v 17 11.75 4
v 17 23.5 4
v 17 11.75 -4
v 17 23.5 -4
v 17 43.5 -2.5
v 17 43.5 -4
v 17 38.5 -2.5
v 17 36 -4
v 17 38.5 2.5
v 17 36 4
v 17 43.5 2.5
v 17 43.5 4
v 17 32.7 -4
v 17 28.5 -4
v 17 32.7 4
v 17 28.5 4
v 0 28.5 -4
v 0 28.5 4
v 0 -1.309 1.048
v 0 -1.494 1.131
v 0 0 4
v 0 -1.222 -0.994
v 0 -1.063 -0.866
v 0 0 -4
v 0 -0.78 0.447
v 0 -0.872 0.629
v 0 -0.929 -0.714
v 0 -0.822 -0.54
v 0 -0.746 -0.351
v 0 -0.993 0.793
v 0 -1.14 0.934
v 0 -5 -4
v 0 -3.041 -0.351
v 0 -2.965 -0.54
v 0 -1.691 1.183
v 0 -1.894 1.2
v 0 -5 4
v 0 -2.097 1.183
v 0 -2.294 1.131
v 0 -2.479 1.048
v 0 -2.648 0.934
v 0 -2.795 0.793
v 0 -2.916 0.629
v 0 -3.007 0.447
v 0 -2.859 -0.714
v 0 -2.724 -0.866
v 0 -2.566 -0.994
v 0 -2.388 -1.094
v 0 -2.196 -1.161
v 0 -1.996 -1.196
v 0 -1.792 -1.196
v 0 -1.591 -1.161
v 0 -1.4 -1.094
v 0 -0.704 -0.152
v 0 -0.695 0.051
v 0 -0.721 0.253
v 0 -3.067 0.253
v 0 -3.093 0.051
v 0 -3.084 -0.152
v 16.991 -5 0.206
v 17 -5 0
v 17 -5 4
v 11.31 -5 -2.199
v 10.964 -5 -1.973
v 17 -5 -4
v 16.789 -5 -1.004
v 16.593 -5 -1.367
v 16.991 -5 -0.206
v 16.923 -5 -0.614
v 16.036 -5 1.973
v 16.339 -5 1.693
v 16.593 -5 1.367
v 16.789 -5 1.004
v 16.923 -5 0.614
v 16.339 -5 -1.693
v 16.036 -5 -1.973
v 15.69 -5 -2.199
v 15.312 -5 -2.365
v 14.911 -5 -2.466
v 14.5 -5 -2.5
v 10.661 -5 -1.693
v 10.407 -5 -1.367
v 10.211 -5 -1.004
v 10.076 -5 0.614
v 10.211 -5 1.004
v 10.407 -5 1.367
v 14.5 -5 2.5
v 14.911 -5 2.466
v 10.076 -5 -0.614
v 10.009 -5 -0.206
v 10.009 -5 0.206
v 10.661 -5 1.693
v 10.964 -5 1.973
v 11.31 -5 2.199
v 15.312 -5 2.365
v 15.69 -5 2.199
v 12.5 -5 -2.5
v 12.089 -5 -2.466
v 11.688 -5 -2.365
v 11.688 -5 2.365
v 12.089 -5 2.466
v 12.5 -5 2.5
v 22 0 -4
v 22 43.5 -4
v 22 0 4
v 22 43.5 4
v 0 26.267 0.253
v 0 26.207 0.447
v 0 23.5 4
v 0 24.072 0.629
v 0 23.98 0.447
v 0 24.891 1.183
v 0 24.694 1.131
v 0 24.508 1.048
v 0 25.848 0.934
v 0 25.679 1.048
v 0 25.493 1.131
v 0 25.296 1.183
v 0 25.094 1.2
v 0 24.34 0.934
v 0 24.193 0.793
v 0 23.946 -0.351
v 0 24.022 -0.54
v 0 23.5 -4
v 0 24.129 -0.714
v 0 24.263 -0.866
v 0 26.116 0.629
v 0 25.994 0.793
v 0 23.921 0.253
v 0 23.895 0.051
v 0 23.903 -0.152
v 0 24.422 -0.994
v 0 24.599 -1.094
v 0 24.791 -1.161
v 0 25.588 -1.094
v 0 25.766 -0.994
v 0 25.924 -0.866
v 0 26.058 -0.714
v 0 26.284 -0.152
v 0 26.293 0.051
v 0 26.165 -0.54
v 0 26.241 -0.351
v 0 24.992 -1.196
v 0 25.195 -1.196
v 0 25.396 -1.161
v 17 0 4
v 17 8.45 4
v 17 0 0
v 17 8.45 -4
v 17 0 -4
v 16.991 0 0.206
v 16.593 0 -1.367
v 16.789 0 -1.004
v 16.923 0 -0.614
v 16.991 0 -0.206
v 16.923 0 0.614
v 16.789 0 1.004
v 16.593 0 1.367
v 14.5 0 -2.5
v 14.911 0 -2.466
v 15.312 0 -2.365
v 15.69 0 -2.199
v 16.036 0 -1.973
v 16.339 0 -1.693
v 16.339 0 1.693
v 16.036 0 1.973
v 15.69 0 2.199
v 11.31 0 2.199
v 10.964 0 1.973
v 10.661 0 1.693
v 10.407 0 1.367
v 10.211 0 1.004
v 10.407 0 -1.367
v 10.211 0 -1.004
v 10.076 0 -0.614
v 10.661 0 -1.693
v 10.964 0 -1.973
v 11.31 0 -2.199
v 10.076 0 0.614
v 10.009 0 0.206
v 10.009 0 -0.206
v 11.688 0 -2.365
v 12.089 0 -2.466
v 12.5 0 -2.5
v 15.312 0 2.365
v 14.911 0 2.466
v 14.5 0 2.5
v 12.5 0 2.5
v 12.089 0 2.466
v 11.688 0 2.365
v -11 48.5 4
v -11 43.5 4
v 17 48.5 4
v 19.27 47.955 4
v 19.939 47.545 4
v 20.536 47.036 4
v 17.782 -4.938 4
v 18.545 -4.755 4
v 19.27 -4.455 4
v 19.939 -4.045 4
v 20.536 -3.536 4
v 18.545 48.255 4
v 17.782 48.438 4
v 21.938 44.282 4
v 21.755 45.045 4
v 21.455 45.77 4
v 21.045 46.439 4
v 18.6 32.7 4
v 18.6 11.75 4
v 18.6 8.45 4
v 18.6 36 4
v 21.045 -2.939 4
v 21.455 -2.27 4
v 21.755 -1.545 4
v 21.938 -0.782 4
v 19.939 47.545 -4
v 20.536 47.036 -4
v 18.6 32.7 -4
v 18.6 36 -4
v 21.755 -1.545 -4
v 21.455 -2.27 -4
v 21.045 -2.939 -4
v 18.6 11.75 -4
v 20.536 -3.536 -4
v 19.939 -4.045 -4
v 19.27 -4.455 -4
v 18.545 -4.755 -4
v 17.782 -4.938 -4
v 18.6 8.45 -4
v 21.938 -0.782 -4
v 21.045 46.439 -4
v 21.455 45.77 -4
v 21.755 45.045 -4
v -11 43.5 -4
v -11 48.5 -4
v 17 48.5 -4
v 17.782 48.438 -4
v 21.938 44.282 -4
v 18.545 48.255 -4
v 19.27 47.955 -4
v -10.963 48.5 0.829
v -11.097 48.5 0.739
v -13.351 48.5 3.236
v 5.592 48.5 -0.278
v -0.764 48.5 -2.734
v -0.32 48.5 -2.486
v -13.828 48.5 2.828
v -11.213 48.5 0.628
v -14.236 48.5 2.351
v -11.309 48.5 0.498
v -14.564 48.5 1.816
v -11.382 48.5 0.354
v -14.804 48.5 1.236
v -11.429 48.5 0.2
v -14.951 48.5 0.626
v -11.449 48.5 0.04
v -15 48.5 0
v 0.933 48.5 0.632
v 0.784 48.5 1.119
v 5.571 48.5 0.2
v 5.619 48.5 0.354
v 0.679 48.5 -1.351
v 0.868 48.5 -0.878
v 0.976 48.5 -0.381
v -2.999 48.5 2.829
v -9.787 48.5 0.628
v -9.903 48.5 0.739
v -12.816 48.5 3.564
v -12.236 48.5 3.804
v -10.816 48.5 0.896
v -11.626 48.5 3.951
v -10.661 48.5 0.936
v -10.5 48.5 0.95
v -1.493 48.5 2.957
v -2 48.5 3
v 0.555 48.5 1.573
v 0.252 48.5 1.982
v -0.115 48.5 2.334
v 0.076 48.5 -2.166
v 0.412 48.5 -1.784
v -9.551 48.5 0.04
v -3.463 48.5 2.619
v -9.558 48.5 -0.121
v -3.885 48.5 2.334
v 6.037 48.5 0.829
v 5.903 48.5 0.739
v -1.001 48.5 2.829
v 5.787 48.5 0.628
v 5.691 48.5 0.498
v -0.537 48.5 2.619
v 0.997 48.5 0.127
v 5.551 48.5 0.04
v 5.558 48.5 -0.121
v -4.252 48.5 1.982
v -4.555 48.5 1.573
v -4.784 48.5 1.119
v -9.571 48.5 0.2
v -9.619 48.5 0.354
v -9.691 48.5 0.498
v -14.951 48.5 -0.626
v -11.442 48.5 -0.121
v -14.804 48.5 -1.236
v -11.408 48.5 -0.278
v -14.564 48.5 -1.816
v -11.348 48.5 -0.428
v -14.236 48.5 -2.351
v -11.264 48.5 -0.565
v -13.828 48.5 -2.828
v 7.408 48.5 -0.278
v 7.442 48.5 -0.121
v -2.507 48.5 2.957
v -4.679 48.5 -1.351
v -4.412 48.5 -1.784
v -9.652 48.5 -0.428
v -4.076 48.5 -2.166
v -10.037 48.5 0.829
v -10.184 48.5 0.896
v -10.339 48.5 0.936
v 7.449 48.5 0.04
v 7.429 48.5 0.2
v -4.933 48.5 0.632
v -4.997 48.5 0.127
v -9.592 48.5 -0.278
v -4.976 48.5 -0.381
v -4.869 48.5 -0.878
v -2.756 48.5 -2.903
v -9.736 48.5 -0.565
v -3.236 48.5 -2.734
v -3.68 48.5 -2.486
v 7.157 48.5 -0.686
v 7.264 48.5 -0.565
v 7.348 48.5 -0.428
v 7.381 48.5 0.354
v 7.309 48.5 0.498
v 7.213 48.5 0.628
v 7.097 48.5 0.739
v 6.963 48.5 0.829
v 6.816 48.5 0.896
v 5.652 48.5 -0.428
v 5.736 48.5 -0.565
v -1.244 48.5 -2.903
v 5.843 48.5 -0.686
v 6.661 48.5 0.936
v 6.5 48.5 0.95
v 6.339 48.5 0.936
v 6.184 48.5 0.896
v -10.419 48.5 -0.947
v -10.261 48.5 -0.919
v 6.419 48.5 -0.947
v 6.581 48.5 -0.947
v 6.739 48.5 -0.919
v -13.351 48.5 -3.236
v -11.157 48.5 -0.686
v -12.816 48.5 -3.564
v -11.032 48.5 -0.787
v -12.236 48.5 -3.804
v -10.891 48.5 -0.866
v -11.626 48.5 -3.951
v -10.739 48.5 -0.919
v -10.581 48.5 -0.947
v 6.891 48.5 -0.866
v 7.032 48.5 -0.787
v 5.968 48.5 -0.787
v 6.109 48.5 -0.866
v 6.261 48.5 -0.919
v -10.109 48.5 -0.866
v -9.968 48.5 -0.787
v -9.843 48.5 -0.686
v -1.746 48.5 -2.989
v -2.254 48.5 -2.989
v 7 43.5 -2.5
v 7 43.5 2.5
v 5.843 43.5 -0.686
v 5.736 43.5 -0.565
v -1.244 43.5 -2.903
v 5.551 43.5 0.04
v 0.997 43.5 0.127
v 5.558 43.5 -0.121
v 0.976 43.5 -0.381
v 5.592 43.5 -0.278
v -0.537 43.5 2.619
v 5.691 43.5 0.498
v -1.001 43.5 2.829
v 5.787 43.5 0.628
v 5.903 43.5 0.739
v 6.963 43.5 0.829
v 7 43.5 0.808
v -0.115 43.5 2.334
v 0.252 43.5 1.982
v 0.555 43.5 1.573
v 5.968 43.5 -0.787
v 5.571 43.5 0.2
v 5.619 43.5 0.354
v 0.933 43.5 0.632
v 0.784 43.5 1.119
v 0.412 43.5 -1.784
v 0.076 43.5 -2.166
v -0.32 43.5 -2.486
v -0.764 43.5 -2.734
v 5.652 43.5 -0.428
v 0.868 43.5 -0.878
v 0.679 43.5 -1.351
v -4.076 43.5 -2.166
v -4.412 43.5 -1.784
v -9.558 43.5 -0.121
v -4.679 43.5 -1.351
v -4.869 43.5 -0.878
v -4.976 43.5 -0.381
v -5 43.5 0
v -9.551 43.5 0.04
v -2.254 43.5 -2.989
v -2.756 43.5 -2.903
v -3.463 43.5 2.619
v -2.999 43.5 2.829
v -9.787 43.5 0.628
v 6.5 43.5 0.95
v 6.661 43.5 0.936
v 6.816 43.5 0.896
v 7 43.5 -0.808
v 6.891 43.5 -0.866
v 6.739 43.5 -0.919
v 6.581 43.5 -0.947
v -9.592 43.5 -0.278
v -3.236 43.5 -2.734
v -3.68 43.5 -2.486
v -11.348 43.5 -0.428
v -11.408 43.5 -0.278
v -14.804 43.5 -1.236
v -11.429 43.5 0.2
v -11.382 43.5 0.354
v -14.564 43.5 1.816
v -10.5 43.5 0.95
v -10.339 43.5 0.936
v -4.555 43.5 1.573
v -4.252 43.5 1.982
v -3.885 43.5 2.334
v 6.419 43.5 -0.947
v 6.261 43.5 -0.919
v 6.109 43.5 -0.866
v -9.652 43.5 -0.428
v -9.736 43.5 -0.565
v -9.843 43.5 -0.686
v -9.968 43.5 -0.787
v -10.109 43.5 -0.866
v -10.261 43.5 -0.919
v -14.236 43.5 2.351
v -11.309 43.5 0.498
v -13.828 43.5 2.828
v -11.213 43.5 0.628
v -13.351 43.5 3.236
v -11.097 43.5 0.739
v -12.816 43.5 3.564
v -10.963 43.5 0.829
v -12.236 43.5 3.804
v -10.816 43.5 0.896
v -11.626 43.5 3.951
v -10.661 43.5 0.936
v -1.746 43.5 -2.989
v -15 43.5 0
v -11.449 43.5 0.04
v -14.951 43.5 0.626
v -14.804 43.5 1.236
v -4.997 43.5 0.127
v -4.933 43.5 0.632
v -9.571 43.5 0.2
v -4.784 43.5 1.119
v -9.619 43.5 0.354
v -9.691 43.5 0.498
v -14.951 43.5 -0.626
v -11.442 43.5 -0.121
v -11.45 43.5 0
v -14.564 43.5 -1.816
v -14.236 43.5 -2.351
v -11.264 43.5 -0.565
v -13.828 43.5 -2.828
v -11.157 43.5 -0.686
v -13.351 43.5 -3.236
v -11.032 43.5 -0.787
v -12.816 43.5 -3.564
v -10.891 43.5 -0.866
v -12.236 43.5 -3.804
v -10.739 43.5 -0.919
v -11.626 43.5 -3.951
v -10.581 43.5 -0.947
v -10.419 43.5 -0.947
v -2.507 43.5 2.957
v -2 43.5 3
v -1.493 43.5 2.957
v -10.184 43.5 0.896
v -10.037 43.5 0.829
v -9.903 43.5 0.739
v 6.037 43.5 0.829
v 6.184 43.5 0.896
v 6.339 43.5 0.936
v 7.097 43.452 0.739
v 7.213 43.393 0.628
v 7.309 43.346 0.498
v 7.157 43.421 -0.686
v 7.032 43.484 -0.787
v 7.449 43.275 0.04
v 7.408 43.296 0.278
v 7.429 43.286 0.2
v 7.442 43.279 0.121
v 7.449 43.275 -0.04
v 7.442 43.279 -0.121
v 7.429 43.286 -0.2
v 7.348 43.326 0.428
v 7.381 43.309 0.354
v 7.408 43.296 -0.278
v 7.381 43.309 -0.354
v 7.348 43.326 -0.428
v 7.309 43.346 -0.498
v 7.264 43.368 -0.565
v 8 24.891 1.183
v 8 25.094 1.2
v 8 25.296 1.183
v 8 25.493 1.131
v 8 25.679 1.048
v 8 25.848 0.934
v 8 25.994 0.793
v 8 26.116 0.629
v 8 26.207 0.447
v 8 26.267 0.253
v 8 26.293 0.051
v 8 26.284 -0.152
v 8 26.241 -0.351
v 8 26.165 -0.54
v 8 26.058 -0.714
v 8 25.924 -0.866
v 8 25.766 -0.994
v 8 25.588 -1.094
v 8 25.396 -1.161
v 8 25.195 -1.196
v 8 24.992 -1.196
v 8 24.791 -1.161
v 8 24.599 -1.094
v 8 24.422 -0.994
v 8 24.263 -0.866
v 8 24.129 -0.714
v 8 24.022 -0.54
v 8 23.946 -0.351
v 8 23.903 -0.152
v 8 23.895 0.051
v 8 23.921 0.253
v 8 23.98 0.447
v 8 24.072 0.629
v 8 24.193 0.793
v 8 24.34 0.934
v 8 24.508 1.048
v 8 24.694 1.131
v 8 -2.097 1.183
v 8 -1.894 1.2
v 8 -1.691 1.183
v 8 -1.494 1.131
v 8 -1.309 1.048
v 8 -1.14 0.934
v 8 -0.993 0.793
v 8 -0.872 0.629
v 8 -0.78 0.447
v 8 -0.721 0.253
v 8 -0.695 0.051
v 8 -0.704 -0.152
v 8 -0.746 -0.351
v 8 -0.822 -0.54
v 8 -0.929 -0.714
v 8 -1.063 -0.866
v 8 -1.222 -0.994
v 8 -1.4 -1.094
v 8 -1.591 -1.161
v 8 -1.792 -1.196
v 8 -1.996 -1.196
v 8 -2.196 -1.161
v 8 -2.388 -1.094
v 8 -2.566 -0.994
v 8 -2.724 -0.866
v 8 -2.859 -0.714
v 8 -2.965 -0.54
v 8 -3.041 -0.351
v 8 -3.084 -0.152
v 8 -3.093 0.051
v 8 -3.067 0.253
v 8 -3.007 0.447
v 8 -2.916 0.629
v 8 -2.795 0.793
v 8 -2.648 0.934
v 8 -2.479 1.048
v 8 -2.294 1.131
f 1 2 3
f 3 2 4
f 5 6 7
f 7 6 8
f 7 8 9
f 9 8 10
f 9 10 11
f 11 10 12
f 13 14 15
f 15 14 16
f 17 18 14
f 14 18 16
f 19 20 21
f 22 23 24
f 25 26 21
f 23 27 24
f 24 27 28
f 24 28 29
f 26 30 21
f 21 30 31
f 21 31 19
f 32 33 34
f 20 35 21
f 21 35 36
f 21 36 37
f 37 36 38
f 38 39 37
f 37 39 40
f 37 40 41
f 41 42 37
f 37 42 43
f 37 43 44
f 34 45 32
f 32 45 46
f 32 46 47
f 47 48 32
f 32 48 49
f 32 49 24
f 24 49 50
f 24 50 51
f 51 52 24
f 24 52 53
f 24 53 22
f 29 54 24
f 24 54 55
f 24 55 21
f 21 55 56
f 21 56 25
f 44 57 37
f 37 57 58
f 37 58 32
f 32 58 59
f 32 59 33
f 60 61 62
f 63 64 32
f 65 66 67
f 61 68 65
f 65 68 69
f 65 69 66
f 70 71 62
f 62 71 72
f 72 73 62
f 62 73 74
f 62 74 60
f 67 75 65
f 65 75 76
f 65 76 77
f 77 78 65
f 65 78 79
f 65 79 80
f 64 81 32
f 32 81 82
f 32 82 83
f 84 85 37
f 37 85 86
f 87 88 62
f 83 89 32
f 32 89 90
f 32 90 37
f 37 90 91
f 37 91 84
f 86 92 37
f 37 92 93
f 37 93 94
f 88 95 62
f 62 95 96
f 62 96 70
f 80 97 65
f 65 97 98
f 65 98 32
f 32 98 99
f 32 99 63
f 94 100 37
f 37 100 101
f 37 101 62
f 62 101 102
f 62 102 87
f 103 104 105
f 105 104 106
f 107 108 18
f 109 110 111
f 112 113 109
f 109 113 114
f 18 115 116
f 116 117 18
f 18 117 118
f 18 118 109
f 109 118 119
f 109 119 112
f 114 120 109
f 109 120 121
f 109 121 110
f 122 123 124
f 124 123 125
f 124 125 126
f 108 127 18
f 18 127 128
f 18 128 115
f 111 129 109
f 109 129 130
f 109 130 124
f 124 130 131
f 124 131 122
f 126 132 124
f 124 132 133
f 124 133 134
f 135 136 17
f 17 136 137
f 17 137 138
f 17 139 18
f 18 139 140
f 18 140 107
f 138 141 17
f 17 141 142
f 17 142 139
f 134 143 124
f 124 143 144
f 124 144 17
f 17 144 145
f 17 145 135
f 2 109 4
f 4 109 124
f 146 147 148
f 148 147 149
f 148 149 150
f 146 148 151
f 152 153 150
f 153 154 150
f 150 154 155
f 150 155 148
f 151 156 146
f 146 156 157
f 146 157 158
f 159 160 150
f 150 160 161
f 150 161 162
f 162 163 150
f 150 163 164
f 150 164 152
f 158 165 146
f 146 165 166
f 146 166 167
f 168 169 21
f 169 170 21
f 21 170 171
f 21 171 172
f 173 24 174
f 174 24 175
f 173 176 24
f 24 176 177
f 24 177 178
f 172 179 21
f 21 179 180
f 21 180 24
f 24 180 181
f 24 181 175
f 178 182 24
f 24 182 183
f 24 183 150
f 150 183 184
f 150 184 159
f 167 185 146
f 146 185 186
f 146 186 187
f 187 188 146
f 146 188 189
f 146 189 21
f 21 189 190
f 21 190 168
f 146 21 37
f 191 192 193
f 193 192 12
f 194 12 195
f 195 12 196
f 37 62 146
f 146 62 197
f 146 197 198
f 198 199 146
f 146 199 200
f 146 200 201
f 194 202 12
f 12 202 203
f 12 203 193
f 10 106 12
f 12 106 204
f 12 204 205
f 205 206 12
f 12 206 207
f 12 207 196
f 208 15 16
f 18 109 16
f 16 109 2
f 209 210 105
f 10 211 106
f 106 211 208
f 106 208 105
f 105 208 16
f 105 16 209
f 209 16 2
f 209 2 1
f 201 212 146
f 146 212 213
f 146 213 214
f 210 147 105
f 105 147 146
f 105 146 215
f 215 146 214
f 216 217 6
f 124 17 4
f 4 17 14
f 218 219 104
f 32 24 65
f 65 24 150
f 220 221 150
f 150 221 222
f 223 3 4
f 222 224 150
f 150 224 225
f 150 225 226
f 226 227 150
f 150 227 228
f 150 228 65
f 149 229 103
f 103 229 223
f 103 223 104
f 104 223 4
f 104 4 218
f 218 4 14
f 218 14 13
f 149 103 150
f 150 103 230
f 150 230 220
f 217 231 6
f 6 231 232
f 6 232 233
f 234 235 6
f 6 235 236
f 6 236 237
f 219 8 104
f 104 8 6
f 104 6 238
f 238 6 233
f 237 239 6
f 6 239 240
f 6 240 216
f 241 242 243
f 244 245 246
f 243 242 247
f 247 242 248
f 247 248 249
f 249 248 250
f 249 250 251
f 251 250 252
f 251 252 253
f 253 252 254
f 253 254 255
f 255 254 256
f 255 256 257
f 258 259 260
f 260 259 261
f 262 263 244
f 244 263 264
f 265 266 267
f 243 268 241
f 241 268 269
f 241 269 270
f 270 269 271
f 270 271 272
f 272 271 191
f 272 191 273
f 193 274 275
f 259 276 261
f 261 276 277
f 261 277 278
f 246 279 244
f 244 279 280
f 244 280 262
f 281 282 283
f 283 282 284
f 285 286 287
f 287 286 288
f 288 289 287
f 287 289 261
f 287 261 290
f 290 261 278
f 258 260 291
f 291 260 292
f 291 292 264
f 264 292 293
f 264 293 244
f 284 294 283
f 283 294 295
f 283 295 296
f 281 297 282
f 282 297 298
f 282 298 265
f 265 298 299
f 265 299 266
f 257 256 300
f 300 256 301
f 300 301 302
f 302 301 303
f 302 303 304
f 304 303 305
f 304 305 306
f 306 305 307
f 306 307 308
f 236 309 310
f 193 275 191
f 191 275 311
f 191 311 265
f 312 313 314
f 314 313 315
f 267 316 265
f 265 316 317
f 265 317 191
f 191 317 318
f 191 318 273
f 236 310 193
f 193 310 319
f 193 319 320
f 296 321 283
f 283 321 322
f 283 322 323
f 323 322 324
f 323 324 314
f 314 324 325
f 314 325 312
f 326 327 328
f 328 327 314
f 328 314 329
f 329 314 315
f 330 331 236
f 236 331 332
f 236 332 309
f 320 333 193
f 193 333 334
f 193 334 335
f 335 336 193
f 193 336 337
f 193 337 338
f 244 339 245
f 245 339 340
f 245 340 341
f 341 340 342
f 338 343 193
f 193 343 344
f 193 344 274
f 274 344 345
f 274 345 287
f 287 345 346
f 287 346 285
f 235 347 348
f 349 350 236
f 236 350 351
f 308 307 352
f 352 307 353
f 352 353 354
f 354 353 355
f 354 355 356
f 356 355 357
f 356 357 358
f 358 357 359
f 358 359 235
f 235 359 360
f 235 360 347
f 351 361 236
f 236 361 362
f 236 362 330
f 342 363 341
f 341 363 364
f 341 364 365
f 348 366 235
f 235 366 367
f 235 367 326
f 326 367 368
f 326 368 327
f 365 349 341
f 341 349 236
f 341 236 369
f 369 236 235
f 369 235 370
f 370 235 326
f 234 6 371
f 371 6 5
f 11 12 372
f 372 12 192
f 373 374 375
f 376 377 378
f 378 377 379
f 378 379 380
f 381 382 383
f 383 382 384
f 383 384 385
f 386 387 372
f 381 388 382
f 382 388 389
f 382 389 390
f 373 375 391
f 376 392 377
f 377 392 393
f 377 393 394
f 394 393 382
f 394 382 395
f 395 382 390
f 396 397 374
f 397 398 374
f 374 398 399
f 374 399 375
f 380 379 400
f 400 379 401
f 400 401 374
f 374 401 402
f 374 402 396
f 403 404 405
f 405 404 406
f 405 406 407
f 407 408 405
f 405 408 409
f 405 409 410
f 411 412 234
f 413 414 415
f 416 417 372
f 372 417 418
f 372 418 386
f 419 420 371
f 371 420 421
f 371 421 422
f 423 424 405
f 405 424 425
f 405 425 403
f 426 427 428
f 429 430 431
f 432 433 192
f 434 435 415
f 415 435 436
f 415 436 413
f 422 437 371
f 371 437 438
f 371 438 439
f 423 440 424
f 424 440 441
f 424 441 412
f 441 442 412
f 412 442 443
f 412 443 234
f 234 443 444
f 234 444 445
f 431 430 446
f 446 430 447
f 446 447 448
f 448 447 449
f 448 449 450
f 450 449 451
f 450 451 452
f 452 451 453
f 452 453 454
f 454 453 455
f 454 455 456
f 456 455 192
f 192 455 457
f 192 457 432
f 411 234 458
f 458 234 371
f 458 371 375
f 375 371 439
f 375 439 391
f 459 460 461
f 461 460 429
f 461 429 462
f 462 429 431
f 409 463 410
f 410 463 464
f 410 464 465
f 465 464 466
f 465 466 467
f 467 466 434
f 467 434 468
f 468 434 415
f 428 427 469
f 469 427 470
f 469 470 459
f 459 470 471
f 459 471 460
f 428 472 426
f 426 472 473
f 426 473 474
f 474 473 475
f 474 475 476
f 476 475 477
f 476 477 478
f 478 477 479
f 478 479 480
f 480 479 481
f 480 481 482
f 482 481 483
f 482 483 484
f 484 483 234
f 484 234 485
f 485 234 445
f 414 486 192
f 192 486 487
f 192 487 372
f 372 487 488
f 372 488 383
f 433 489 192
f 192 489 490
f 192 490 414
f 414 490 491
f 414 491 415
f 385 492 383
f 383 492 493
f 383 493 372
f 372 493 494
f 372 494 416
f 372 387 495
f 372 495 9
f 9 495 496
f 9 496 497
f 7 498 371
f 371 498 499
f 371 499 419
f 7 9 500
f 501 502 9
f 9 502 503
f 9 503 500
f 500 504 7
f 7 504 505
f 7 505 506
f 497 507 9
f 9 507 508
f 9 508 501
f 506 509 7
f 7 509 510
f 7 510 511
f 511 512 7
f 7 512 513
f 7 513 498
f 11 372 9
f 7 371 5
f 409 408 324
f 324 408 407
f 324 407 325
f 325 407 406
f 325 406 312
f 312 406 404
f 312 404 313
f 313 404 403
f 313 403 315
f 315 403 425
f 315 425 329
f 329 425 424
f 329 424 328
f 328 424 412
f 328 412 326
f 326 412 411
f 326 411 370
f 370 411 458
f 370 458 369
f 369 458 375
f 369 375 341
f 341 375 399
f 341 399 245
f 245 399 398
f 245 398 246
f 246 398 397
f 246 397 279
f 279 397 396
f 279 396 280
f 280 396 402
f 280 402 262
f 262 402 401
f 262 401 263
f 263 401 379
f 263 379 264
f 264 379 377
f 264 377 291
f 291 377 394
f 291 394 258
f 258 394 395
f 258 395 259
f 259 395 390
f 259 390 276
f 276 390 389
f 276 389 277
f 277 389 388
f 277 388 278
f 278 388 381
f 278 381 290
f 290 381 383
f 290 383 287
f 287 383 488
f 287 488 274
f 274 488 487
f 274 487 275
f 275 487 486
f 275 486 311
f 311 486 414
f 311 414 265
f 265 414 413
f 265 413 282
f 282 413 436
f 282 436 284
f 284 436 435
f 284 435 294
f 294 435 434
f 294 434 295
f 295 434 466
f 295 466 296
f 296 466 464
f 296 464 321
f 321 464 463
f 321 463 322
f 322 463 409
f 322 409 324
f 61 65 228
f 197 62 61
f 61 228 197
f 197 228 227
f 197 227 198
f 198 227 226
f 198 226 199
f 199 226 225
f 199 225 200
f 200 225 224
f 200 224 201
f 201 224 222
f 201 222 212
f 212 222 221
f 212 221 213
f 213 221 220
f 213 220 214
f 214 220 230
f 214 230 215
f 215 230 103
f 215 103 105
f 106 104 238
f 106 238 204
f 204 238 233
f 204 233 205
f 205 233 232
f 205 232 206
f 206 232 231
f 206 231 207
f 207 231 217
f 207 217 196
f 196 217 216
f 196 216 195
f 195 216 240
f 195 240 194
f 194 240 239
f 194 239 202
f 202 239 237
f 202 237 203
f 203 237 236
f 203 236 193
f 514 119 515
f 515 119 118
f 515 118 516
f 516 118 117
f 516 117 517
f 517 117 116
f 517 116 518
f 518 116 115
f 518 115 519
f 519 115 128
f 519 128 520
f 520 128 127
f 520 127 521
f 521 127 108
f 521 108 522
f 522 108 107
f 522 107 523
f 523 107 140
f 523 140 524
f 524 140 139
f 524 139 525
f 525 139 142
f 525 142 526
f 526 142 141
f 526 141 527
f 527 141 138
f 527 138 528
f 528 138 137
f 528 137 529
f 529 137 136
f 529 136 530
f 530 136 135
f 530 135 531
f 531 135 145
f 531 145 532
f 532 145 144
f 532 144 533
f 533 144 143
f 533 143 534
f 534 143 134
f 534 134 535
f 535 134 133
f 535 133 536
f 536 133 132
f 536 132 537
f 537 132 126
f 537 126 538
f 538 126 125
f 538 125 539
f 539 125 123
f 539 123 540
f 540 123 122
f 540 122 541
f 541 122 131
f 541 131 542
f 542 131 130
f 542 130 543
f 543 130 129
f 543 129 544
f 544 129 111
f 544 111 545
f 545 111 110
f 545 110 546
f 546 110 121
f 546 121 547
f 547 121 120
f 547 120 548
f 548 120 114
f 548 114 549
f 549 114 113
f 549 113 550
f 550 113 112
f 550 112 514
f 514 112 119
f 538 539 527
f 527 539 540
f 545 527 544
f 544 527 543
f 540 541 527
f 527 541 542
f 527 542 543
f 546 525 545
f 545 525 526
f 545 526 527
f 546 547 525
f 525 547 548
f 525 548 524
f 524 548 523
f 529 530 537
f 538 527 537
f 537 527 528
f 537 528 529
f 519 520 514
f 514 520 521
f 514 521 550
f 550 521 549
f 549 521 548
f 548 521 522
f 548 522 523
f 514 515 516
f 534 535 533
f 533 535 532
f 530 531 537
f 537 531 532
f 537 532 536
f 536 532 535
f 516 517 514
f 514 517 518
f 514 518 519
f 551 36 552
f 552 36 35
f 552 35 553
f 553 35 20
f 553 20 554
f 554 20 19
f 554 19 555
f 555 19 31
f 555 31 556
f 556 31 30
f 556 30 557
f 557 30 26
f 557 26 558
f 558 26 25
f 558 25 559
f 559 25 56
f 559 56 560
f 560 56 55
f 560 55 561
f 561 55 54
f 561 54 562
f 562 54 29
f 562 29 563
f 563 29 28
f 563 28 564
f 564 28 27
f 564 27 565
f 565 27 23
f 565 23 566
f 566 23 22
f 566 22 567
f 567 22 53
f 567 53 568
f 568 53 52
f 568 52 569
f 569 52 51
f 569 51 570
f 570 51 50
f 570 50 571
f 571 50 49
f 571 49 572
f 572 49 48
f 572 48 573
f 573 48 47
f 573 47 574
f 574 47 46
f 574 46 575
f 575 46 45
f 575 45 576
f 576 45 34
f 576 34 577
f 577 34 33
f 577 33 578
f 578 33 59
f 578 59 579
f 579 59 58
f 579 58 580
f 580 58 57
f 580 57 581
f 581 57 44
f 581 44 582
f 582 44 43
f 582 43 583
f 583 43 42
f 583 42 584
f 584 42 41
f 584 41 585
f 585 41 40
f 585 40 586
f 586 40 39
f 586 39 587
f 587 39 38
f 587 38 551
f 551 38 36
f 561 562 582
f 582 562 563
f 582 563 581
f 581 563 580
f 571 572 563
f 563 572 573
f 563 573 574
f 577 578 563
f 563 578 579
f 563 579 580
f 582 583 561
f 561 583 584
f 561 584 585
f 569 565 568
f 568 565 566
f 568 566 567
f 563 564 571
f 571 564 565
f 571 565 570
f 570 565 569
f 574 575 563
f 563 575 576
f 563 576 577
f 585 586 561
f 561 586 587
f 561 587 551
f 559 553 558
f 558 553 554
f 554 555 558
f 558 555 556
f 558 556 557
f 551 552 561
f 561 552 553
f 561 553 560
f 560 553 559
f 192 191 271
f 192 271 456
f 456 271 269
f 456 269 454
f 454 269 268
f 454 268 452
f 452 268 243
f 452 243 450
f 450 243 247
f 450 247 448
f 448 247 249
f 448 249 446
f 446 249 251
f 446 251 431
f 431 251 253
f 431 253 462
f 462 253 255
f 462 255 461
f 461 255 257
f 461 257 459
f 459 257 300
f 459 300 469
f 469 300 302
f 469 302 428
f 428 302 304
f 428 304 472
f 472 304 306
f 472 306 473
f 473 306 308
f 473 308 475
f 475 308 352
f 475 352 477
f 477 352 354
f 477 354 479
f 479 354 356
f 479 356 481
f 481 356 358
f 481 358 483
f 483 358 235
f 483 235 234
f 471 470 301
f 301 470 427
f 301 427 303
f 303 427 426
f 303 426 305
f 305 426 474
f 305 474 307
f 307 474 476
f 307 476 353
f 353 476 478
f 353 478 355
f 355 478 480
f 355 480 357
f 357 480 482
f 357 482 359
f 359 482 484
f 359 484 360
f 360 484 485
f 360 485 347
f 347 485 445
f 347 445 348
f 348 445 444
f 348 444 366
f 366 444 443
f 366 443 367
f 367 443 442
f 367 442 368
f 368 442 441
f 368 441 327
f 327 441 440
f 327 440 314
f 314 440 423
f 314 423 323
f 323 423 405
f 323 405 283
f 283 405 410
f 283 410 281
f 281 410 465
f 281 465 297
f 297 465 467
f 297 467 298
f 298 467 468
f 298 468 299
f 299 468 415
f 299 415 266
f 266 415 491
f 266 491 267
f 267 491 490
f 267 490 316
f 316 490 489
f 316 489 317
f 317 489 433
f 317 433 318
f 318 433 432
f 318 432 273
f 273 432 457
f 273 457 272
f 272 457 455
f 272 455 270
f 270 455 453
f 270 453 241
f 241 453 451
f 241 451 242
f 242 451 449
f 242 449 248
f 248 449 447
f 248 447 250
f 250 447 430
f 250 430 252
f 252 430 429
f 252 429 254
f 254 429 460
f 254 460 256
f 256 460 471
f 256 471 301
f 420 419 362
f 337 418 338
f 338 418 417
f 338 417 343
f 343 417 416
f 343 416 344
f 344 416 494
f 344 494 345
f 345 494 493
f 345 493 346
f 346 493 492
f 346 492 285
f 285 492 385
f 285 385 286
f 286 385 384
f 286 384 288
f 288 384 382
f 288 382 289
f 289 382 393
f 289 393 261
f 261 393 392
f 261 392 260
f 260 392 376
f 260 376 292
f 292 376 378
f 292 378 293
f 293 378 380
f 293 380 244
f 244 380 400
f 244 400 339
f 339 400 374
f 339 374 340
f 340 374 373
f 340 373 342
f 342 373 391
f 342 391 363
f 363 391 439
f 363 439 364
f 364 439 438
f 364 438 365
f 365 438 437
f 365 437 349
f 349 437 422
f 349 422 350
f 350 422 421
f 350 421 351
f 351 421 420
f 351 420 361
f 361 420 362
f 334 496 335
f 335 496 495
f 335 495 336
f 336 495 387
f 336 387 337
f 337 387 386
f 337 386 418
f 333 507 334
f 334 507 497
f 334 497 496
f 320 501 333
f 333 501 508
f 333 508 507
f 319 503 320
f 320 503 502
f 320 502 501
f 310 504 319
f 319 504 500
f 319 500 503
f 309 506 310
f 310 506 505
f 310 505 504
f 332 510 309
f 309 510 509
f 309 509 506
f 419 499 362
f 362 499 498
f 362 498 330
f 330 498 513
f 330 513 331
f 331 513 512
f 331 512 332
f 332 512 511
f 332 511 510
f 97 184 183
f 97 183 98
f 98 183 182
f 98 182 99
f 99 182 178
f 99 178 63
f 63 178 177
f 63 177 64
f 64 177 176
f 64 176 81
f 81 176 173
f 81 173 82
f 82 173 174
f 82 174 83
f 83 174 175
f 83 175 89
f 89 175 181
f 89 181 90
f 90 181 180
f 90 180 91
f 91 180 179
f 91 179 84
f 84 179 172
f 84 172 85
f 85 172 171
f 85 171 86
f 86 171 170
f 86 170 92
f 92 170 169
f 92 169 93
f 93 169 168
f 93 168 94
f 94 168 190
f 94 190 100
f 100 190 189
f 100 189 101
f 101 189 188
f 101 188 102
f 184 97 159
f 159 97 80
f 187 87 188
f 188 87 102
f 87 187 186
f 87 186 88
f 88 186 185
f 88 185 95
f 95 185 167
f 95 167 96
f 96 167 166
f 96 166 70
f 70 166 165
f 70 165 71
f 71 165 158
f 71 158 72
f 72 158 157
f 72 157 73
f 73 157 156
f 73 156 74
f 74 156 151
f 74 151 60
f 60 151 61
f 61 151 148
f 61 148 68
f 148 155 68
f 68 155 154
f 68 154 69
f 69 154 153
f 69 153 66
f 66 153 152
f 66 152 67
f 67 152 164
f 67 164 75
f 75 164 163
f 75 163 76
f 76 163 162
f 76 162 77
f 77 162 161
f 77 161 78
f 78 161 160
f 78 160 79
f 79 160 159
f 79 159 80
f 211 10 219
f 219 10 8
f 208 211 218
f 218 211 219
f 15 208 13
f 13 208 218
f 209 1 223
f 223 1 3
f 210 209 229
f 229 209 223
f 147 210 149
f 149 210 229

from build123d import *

# Parameters (mm, degrees)
P_IDAT_VYSUNUT_M1_DEPTH  = 4
SKICA2_W                 = 5
SKICA2_H                 = 8
P_IDAT_VYSUNUT_M2_DEPTH  = 20
SKICA3_W                 = 8
SKICA3_H                 = 5
P_IDAT_VYSUNUT_M3_DEPTH  = 32
P_IDAT_VYSUNUT_M4_DEPTH  = 2.5
SKICA5_R                 = 3
ODEBRAT_VYSUNUT_M1_DEPTH = 15
ZAOBLIT1_R               = 5
SKICA6_R                 = 1.2
ODEBRAT_VYSUNUT_M2_DEPTH = 8
ZAOBLIT2_R               = 4
SKICA7_R                 = 0.95
ODEBRAT_VYSUNUT_M3_DEPTH = 13
ODEBRAT_VYSUNUT_M4_DEPTH = 10
SKICA9_W                 = 1.6
SKICA9_H                 = 3.3
ODEBRAT_VYSUNUT_M5_DEPTH = 10


with BuildPart() as part:
    # Skica1 → Přidat vysunutím1 (new, symmetric)
    with BuildSketch(Plane.XY):
        Polygon((0, 0), (17, 0), (17, 23.5), (0, 23.5), (0, 28.5), (22, 28.5), (22, -5), (0, -5), align=None)
    extrude(amount=P_IDAT_VYSUNUT_M1_DEPTH, both=True)

    # Skica2 → Přidat vysunutím2 (add)
    with BuildSketch(Plane(origin=(0, 28.5, 0), x_dir=(1, 0, 0), z_dir=(0, 1, 0))):
        with Locations((19.5, 0)):
            Rectangle(SKICA2_W, SKICA2_H)
    extrude(amount=P_IDAT_VYSUNUT_M2_DEPTH)

    # Skica3 → Přidat vysunutím3 (add)
    with BuildSketch(Plane.ZY.offset(-17)):
        with Locations((0, 46)):
            Rectangle(SKICA3_W, SKICA3_H)
    extrude(amount=P_IDAT_VYSUNUT_M3_DEPTH)

    # Skica4 → Přidat vysunutím4 (add, symmetric)
    with BuildSketch(Plane.XY):
        Polygon((17, 43.5), (7, 43.5), (17, 38.5), align=None)
    extrude(amount=P_IDAT_VYSUNUT_M4_DEPTH, both=True)

    # Skica5 → Odebrat vysunutím1 (cut)
    with BuildSketch(Plane(origin=(0, 48.5, 0), x_dir=(1, 0, 0), z_dir=(0, 1, 0))):
        with Locations(Location((-2, 0, 0), (0, 0, 270))):
            Circle(SKICA5_R)
    extrude(amount=-ODEBRAT_VYSUNUT_M1_DEPTH, mode=Mode.SUBTRACT)

    # Zaoblit1
    zaoblit1_edges = [part.edges().sort_by_distance(p)[0] for p in [
        (22, -5, 0),
        (22, 48.5, 0),
    ]]
    fillet(zaoblit1_edges, radius=ZAOBLIT1_R)

    # Skica6 → Odebrat vysunutím2 (cut)
    with BuildSketch(Plane.ZY):
        with Locations((-6.1415e-05, 25.09368658)):
            Circle(SKICA6_R)
        with Locations((-5.8558e-05, -1.893787552)):
            Circle(SKICA6_R)
    extrude(amount=-ODEBRAT_VYSUNUT_M2_DEPTH, mode=Mode.SUBTRACT)

    # Zaoblit2
    zaoblit2_edges = [part.edges().sort_by_distance(p)[0] for p in [
        (-15, 46, -4),
        (-15, 46, 4),
    ]]
    fillet(zaoblit2_edges, radius=ZAOBLIT2_R - 0.0001)  # a hair under: the kernel refuses the full size

    # Skica7 → Odebrat vysunutím3 (cut)
    with BuildSketch(Plane(origin=(0, 48.5, 0), x_dir=(1, 0, 0), z_dir=(0, 1, 0))):
        with Locations(Location((-10.5, 0, 0), (0, 0, 270))):
            Circle(SKICA7_R)
        with Locations(Location((6.5, 0, 0), (0, 0, 270))):
            Circle(SKICA7_R)
    extrude(amount=-ODEBRAT_VYSUNUT_M3_DEPTH, mode=Mode.SUBTRACT)

    # Skica8 → Odebrat vysunutím4 (cut)
    with BuildSketch(Plane(origin=(0, 0, 0), x_dir=(1, 0, 0), z_dir=(0, 1, 0))):
        with BuildLine():
            Line((12.5, 2.5), (14.5, 2.5))
            ThreePointArc((14.5, 2.5), (17, 0), (14.5, -2.5))
            Line((14.5, -2.5), (12.5, -2.5))
            ThreePointArc((12.5, -2.5), (10, 0), (12.5, 2.5))
        make_face()
    extrude(amount=-ODEBRAT_VYSUNUT_M4_DEPTH, mode=Mode.SUBTRACT)

    # Skica9 → Odebrat vysunutím5 (cut)
    with BuildSketch(Plane.XY.offset(4)):
        with Locations((17.8, 34.35)):
            Rectangle(SKICA9_W, SKICA9_H)
        with Locations((17.8, 10.1)):
            Rectangle(SKICA9_W, SKICA9_H)
    extrude(amount=-ODEBRAT_VYSUNUT_M5_DEPTH, mode=Mode.SUBTRACT)


solid = part.part
